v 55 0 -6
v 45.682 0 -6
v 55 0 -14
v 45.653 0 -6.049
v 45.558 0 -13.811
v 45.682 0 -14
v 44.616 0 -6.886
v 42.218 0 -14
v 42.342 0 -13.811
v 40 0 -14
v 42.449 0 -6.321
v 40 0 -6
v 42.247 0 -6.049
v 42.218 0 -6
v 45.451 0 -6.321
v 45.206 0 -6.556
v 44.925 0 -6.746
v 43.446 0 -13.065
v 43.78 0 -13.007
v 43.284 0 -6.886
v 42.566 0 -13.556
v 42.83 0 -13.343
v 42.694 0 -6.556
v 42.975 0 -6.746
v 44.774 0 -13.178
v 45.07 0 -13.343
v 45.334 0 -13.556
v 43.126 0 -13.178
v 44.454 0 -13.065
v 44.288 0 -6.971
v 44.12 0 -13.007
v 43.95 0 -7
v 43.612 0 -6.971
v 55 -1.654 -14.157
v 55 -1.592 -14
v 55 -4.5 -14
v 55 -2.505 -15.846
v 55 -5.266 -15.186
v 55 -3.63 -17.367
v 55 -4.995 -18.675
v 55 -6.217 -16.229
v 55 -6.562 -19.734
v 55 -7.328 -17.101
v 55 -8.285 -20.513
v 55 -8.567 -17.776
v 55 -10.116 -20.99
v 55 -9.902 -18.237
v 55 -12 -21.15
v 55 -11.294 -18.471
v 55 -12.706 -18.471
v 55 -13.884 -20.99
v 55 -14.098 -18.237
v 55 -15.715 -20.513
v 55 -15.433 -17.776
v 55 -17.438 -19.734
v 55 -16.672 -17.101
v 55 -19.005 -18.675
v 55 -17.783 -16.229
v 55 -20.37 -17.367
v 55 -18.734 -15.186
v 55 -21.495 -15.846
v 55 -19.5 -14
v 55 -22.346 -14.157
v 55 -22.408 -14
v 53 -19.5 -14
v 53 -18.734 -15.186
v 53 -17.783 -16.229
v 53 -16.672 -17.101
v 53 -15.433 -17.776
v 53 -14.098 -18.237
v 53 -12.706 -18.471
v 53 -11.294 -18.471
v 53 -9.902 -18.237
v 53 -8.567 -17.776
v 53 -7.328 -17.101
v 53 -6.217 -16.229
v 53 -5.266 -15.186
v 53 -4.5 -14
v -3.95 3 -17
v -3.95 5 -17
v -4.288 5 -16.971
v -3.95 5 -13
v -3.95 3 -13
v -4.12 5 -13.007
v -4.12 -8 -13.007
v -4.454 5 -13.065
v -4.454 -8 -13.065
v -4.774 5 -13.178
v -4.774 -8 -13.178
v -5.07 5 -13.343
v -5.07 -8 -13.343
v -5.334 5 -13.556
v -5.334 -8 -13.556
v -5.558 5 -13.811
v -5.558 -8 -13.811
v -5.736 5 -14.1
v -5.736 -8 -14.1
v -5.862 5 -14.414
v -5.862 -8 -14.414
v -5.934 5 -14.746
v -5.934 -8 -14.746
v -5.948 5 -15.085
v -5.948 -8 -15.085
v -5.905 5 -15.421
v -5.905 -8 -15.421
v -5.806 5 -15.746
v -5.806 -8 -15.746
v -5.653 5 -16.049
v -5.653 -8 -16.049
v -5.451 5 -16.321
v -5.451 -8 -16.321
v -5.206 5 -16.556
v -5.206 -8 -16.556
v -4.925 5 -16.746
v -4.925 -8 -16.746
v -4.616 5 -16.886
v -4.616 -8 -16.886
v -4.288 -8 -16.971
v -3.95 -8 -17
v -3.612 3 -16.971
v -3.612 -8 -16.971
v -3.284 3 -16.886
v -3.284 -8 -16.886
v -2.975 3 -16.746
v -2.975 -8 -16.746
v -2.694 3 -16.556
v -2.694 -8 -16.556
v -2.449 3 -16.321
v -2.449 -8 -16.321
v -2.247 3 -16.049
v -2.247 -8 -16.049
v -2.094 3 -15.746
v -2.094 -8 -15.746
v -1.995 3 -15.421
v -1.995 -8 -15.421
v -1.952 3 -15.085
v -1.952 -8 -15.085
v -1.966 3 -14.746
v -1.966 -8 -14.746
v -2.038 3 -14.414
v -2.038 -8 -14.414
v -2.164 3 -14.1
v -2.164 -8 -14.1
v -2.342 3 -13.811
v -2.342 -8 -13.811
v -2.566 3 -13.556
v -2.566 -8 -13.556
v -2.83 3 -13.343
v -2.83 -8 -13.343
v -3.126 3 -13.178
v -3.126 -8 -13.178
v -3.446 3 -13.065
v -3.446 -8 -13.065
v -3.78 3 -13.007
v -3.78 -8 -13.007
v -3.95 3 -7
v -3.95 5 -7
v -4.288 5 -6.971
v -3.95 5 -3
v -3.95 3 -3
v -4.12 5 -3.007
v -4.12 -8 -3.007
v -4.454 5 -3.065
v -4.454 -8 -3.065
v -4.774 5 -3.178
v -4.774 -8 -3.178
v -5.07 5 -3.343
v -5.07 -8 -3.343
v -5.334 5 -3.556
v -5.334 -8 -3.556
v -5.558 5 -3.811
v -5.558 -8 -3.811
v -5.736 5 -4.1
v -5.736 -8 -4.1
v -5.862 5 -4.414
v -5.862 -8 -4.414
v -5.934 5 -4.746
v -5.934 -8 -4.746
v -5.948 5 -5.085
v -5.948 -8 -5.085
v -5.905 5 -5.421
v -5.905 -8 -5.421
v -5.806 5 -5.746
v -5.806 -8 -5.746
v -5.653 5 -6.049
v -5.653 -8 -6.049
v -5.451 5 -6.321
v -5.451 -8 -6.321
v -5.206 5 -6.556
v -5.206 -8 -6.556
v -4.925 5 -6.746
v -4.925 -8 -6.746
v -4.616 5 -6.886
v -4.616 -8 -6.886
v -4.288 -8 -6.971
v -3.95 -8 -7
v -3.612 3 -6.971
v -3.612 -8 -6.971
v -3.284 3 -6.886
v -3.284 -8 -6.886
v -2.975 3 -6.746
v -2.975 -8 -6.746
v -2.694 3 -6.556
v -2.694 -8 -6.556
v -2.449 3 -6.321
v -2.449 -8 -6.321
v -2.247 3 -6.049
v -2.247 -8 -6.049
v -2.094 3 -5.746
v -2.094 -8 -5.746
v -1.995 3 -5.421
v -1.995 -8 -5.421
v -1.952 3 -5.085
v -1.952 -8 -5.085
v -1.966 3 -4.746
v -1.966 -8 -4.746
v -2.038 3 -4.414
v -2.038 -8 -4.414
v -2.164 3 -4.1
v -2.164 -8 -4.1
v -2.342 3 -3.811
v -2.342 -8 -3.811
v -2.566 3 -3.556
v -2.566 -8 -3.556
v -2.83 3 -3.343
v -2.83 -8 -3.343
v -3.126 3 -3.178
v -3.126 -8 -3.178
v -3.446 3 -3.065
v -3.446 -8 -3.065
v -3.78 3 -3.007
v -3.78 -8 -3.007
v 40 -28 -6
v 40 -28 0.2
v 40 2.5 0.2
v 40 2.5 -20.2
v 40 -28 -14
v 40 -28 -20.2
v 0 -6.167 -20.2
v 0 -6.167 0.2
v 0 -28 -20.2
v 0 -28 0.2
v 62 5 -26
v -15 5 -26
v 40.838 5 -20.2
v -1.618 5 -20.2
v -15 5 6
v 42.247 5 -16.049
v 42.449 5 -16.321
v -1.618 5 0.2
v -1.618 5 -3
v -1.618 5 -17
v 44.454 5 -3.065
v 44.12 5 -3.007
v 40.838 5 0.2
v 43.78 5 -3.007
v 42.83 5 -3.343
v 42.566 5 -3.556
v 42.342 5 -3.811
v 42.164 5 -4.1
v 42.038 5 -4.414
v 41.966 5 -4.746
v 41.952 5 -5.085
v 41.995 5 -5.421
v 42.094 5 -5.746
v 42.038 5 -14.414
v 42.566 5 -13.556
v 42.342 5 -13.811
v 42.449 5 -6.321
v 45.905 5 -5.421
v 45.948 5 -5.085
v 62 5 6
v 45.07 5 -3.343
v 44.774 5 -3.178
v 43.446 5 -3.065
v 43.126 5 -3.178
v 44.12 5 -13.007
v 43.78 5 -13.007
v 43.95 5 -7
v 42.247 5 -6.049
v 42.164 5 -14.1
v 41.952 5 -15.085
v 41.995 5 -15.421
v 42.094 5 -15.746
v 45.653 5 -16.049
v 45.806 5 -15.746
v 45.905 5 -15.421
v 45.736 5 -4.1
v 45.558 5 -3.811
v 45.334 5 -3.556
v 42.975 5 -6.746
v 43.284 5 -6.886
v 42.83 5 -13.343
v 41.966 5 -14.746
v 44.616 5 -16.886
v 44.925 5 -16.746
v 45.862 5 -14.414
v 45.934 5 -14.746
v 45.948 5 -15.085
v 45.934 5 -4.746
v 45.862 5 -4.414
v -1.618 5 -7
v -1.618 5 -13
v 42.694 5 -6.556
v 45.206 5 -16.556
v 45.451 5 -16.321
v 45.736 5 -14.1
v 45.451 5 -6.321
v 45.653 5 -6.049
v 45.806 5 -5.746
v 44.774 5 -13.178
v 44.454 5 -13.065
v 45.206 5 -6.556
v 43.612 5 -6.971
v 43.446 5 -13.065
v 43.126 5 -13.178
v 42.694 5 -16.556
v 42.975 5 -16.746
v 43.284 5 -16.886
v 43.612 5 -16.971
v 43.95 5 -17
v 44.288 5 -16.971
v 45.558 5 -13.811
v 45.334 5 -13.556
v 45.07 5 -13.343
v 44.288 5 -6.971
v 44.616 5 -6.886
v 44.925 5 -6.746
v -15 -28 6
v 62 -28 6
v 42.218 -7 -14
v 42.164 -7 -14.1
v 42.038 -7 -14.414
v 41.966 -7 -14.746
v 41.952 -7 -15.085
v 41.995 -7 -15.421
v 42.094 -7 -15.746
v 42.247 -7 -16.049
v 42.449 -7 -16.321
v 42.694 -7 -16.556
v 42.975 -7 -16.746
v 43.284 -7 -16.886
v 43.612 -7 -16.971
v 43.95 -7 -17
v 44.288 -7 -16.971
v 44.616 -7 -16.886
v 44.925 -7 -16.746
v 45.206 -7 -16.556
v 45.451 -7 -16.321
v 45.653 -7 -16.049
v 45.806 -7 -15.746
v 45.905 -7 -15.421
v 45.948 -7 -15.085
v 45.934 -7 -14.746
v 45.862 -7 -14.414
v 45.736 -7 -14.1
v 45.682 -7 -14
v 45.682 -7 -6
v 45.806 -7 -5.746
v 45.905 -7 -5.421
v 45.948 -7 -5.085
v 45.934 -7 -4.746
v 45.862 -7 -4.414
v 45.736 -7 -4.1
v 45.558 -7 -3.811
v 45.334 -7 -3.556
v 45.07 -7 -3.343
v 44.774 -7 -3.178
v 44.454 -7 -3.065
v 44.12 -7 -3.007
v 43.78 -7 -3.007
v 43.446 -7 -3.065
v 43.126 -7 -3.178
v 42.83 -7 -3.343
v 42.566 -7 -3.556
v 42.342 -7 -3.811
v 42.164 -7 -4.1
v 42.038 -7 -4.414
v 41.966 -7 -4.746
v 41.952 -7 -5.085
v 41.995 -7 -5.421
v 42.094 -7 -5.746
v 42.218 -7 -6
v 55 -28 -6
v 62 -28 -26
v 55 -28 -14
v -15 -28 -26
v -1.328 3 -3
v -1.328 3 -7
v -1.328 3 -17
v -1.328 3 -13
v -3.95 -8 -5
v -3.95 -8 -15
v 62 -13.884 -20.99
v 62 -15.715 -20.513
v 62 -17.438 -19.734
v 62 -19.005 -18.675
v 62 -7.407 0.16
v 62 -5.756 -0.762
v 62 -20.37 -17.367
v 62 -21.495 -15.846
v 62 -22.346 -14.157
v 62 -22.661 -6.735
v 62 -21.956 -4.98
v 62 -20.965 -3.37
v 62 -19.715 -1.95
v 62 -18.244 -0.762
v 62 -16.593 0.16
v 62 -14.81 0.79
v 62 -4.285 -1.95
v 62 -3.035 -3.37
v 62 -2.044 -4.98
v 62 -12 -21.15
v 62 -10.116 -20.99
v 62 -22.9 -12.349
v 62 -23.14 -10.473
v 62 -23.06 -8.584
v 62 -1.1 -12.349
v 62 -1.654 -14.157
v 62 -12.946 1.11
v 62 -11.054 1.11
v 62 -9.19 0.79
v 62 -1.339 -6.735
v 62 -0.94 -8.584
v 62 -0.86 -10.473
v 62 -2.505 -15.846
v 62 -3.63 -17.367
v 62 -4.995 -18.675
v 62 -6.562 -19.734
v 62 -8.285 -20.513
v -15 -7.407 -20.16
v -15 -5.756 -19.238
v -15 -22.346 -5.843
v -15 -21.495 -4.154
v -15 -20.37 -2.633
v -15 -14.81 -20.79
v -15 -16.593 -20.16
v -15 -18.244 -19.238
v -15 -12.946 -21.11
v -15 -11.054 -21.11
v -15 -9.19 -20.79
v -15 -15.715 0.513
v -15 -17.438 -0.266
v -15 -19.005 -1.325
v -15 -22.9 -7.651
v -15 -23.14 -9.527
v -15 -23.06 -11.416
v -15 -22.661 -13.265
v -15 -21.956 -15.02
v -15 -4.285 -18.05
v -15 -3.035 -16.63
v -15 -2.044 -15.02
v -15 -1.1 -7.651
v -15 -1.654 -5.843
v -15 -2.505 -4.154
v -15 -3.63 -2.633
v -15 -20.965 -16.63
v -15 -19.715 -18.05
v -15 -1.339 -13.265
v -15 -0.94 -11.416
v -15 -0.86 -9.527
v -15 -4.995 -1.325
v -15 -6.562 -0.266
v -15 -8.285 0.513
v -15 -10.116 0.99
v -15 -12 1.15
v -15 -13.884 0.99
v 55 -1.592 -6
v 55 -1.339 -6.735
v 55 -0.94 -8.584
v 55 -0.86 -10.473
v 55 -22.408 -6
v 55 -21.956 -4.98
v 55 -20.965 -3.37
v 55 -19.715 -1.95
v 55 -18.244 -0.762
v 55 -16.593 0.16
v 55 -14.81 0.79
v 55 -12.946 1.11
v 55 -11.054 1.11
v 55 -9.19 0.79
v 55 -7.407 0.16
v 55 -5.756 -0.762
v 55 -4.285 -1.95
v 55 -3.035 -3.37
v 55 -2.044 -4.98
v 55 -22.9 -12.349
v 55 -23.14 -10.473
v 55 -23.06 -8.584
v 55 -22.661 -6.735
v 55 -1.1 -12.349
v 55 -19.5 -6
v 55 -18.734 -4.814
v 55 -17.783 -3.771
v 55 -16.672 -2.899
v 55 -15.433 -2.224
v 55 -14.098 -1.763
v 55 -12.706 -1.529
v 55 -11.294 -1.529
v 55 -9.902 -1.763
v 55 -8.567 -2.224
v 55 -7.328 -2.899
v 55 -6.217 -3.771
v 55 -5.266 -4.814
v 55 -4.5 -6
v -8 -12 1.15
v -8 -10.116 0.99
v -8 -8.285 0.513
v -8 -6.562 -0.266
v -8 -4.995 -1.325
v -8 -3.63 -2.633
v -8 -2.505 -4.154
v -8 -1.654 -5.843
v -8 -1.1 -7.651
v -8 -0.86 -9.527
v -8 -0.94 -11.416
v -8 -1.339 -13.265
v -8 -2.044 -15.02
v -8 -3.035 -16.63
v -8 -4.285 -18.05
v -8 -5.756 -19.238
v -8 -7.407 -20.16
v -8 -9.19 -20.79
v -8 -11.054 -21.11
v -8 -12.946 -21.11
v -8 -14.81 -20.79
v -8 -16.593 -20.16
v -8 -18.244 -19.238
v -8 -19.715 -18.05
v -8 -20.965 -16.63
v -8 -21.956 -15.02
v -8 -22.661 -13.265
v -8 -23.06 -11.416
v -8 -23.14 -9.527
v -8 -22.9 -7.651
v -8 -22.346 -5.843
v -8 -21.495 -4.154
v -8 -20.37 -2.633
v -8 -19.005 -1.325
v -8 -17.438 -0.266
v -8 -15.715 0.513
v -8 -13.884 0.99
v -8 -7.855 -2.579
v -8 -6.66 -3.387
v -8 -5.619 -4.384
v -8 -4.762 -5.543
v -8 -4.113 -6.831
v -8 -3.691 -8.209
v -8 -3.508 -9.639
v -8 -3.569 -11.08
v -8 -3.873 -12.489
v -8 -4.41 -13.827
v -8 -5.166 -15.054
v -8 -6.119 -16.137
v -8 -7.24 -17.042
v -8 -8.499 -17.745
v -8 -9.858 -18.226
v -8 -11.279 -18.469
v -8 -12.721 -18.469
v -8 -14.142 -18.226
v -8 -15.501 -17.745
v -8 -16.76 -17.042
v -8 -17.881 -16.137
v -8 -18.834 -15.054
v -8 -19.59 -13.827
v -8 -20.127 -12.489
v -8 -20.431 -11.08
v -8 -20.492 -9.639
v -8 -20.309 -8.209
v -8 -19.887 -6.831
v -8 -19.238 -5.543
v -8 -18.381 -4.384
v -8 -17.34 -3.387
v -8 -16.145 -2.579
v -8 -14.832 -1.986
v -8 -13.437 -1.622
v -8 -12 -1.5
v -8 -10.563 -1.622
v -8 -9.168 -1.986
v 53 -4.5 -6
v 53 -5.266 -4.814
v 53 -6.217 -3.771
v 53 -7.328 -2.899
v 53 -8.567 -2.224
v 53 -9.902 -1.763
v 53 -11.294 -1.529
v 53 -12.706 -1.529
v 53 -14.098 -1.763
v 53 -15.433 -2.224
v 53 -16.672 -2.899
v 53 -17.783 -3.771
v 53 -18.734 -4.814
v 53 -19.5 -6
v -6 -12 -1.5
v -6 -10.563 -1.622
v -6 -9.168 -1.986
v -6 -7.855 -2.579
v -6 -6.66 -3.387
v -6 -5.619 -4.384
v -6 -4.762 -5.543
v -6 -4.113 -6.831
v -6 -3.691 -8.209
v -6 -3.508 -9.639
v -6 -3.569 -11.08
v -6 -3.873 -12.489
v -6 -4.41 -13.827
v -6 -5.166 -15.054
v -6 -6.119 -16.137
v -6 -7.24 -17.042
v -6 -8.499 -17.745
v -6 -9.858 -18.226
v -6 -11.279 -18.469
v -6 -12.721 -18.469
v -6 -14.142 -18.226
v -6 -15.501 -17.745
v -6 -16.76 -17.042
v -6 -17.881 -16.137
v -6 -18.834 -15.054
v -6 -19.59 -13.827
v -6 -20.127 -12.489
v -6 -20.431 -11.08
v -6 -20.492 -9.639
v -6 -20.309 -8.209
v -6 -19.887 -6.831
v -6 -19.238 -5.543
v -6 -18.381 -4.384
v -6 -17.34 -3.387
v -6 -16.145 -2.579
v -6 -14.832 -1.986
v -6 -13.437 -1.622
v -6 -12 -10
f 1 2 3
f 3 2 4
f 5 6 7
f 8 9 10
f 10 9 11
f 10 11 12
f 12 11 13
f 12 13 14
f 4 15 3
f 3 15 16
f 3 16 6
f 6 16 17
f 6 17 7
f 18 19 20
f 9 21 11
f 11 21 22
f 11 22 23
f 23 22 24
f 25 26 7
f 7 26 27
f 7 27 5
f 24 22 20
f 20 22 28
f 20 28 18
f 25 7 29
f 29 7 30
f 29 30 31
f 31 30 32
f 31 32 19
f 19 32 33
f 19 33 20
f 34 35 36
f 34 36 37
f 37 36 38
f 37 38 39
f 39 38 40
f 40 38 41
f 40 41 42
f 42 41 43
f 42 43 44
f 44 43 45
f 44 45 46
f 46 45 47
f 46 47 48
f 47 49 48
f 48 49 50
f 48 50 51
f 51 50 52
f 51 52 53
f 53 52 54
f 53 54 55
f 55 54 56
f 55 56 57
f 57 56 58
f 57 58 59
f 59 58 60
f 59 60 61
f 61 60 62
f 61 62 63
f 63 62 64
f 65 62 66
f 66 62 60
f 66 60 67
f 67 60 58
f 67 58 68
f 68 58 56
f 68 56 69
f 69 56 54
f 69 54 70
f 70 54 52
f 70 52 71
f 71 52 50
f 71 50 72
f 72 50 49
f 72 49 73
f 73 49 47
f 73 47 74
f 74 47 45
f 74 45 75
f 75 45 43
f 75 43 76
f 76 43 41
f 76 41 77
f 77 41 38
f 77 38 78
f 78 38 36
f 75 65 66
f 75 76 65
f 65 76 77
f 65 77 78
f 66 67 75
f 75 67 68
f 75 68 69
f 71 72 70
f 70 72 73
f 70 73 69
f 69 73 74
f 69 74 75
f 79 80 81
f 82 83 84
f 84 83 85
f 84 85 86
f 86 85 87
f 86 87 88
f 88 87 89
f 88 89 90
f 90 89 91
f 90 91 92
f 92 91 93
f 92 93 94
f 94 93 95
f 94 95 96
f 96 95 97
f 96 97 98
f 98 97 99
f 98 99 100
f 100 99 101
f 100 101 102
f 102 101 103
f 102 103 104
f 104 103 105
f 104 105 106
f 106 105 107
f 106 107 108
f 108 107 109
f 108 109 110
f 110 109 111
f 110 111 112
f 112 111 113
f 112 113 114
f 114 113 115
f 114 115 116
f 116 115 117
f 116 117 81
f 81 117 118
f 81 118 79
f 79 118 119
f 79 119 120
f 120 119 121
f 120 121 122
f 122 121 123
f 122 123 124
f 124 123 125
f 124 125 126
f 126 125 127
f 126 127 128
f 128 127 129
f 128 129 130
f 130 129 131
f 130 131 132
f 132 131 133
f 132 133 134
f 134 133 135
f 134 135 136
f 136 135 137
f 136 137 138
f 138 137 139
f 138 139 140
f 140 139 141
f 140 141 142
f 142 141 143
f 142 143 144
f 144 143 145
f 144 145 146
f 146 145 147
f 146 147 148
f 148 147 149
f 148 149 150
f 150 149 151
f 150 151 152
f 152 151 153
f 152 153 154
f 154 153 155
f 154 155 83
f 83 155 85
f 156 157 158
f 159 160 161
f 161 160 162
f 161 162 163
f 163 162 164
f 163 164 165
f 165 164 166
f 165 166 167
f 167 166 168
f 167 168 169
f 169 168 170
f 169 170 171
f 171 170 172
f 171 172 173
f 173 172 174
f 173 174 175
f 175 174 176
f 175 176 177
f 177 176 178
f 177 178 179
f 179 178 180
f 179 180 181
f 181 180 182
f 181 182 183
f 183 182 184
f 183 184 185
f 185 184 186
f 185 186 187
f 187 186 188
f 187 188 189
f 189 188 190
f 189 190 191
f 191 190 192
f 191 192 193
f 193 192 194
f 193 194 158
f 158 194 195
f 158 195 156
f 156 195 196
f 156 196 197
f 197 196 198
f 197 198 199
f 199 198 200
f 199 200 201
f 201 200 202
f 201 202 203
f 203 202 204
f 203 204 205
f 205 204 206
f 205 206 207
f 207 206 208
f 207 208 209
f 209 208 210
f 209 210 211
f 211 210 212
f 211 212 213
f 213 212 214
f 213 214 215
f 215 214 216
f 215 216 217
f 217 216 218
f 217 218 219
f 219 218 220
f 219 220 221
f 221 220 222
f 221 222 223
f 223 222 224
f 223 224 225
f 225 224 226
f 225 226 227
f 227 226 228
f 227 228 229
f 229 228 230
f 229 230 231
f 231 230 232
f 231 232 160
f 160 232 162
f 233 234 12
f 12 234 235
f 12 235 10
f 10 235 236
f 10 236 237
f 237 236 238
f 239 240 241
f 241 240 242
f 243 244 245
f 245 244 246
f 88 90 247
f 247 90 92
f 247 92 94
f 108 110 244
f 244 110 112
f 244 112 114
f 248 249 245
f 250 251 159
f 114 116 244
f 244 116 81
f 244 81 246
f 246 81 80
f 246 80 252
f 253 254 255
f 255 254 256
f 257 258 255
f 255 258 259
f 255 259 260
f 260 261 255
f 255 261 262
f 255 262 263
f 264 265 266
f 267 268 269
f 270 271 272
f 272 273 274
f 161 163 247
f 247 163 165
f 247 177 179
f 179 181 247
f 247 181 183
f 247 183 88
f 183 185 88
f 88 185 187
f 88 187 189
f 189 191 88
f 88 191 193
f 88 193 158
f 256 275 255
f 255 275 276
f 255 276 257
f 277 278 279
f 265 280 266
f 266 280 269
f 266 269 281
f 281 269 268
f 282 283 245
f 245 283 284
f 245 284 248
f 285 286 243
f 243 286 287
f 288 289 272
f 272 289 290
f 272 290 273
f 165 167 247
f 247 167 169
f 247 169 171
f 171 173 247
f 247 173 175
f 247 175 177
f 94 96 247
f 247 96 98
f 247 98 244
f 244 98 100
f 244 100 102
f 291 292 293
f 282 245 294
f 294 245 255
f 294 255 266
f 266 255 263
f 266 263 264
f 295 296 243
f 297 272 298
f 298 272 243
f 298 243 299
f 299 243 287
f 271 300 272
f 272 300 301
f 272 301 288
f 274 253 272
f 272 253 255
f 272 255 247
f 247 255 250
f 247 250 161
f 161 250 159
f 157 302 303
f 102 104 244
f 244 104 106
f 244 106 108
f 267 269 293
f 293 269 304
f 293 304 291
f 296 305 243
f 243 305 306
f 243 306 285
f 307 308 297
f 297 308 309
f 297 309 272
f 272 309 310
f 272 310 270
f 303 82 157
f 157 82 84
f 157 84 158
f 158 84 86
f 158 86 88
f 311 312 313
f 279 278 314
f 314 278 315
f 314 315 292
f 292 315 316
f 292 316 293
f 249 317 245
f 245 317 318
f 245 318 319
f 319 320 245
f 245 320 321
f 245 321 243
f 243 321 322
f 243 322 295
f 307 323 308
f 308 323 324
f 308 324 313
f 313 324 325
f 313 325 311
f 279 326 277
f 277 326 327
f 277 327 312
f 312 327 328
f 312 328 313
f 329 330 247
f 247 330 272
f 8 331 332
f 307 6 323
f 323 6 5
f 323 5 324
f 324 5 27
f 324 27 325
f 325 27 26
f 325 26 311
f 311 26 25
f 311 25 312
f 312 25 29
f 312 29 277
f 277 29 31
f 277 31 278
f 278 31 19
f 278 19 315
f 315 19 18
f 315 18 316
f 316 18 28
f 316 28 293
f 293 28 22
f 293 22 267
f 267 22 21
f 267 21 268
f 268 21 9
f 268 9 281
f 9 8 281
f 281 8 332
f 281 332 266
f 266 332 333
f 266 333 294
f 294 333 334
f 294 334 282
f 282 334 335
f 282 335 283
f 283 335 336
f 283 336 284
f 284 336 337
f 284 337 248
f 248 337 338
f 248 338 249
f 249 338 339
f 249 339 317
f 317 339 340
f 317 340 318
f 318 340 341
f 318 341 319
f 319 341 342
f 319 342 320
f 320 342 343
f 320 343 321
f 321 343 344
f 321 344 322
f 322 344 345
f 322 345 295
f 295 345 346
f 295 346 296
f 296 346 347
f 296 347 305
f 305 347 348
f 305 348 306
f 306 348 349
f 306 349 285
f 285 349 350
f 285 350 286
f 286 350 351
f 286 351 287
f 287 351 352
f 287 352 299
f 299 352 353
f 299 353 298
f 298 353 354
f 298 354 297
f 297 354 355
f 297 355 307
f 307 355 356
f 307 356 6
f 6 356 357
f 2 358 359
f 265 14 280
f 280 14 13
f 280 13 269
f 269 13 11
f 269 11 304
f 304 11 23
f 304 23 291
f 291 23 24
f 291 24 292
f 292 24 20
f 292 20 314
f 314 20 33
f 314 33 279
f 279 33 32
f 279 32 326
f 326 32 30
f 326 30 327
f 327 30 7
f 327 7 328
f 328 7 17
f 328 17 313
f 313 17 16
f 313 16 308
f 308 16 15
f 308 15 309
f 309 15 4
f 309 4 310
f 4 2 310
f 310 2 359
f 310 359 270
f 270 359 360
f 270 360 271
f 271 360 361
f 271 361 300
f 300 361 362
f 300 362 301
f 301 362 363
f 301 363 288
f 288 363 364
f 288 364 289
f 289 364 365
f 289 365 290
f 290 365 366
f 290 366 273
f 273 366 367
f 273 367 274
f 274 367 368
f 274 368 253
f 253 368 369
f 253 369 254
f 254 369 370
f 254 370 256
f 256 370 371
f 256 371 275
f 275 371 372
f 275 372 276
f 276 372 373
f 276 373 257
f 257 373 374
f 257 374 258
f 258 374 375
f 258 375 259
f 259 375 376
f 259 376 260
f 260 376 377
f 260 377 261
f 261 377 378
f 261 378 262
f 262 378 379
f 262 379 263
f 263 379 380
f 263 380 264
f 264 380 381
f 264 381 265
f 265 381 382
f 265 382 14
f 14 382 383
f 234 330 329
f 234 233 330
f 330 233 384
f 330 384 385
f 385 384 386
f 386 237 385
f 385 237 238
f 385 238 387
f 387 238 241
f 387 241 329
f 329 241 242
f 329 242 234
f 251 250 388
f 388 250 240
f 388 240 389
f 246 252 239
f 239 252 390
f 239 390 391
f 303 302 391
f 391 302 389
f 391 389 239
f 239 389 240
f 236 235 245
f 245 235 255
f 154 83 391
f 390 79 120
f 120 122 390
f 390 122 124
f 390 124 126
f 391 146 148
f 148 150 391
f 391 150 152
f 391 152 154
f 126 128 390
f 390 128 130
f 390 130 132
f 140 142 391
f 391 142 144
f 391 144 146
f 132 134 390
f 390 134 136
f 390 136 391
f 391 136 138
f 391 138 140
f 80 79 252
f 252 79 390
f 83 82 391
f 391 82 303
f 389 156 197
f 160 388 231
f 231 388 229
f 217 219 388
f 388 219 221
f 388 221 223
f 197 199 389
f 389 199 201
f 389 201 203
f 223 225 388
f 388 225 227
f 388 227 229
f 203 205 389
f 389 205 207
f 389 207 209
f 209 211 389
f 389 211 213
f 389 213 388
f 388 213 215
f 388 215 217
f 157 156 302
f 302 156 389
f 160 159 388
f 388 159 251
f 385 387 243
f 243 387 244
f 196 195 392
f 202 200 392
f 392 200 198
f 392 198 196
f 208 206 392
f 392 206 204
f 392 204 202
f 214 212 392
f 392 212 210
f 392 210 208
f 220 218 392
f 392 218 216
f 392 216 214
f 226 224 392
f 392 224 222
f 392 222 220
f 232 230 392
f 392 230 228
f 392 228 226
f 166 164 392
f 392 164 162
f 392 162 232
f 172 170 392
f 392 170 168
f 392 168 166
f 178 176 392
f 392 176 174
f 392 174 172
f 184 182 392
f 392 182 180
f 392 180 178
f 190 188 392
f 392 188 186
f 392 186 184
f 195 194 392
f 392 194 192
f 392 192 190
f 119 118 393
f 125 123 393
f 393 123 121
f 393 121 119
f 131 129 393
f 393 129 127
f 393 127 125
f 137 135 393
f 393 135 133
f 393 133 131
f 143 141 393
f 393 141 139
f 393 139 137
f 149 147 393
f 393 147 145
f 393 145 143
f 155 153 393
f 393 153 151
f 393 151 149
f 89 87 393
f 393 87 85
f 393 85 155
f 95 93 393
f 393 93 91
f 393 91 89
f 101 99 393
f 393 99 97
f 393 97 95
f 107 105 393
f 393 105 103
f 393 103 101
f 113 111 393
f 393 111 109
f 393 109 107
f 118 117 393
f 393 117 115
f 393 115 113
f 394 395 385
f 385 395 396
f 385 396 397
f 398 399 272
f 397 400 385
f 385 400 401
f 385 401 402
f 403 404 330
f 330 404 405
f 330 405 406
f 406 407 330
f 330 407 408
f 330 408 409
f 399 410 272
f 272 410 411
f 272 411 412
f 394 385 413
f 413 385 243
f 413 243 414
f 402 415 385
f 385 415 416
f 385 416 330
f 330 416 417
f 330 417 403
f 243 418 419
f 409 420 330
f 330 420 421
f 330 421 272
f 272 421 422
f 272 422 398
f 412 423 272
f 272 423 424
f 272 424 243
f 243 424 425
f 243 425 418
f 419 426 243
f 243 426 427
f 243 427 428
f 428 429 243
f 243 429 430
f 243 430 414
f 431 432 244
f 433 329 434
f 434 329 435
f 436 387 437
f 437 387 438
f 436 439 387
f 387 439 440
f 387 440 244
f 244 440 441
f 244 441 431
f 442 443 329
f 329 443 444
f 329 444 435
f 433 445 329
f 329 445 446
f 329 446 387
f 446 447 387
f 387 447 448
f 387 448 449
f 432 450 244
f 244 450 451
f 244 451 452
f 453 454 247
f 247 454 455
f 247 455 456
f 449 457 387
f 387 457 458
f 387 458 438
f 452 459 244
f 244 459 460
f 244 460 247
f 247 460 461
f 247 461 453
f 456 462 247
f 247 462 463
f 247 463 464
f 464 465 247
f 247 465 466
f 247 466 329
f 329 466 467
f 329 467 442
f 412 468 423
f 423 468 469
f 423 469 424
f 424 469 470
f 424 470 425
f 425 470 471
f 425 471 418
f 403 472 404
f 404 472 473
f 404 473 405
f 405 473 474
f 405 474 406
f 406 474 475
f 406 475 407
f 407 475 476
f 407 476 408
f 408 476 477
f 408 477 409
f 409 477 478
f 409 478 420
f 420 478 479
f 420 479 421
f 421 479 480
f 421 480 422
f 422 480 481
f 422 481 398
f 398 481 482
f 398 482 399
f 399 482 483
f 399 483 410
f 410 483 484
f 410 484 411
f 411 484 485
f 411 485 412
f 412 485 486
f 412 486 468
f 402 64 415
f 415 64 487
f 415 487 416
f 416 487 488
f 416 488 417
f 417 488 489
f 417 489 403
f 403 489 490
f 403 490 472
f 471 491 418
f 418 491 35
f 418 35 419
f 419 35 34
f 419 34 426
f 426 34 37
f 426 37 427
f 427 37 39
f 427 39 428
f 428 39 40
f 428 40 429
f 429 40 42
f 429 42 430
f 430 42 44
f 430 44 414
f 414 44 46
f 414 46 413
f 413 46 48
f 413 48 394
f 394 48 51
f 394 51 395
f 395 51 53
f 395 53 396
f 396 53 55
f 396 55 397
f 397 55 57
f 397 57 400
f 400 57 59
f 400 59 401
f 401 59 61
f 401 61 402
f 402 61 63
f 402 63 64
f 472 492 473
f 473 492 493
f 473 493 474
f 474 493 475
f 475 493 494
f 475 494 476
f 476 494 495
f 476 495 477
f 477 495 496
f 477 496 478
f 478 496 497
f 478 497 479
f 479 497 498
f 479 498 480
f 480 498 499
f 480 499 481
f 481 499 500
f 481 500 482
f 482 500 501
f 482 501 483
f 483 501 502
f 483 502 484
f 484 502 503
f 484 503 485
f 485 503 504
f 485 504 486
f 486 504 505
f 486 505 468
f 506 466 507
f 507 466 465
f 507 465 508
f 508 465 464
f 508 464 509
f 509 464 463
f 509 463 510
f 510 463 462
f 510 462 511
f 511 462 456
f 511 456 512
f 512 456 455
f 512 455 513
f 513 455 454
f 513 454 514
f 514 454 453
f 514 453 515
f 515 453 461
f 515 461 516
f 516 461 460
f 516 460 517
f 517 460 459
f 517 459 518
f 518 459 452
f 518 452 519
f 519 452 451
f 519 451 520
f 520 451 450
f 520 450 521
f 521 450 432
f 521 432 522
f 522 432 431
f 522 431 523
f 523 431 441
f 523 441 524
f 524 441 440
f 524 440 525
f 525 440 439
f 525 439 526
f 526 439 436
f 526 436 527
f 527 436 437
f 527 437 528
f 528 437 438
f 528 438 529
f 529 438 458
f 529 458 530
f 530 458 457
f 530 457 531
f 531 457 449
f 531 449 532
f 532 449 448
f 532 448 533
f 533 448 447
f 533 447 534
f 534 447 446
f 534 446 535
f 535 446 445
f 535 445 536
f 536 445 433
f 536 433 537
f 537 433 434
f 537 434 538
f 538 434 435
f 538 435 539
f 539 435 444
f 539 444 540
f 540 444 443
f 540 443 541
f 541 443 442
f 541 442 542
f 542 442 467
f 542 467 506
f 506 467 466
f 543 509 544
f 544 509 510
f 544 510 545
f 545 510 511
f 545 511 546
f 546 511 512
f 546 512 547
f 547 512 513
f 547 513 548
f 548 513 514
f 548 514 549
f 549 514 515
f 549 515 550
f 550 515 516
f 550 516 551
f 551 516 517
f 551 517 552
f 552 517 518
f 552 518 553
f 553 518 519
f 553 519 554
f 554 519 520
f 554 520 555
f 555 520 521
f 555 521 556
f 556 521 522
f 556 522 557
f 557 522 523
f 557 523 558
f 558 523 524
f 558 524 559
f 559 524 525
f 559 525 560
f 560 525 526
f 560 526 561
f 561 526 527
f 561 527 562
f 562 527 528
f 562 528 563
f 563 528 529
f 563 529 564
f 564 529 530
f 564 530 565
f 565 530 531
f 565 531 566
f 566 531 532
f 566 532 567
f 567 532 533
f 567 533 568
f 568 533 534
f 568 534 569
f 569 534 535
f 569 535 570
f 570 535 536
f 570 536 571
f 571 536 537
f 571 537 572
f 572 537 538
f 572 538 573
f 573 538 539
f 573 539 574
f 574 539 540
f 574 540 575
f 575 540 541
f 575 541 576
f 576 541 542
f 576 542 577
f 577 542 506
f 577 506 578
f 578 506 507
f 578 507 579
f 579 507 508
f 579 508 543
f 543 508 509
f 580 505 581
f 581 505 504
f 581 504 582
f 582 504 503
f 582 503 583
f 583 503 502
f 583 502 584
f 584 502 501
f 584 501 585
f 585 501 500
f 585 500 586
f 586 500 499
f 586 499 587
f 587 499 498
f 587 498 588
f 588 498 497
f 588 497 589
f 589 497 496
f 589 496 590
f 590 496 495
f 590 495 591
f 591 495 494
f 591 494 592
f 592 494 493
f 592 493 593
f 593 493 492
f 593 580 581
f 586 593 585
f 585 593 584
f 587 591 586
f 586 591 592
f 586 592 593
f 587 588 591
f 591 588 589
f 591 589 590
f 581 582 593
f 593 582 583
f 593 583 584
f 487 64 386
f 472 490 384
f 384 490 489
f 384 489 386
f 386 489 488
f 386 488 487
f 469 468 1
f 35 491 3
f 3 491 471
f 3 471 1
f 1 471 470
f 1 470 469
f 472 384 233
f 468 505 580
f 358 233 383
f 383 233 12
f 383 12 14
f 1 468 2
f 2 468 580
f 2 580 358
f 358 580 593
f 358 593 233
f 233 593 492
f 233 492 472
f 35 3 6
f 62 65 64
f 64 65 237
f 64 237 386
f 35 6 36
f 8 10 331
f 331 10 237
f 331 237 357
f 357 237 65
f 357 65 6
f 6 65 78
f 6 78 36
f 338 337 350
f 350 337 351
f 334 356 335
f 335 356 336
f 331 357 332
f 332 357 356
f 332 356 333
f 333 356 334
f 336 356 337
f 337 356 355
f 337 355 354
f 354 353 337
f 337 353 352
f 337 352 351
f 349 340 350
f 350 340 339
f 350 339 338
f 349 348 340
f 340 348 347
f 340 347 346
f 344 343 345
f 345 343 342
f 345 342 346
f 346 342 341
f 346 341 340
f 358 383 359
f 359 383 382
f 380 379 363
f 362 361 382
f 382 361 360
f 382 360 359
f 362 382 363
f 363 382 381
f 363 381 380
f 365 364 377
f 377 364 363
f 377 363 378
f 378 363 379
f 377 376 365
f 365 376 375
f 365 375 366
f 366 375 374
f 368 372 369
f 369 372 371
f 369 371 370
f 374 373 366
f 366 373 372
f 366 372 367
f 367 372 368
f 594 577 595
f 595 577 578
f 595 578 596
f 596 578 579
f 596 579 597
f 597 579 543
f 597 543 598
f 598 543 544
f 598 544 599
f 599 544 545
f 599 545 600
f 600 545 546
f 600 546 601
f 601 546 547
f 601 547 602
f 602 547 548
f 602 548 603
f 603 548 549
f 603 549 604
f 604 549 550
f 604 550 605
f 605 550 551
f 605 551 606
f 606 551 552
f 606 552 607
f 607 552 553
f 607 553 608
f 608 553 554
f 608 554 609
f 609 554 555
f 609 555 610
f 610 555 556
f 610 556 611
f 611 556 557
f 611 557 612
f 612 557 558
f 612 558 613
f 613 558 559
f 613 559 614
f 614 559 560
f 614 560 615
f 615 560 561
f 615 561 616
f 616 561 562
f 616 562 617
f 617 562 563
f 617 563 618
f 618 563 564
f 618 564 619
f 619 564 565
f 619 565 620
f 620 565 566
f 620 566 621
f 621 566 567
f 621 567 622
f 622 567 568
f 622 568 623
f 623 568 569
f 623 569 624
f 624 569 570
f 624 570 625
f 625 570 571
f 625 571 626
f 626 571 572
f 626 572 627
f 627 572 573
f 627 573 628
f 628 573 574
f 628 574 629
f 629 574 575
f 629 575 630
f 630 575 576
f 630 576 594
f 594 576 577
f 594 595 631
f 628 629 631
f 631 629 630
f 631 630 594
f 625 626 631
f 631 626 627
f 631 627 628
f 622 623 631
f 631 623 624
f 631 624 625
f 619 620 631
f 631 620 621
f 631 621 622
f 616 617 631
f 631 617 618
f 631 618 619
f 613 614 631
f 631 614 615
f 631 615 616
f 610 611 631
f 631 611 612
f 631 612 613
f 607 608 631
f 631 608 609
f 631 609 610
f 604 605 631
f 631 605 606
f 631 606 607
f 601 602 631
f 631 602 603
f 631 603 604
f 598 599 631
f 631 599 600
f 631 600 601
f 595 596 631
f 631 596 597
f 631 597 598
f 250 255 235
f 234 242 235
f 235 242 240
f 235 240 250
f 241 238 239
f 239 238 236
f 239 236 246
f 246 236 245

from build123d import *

# Parameters (mm, degrees)
BOSS_EXTRUDE1_DEPTH  = 5
SKETCH6_R            = 2
CUT_EXTRUDE3_DEPTH   = 53.239831546
SKETCH7_W            = 56
SKETCH7_H            = 6
BOSS_EXTRUDE2_DEPTH  = 28
SKETCH9_W            = 20
SKETCH9_H            = 28
BOSS_EXTRUDE3_DEPTH  = 2
SKETCH8_W            = 26
SKETCH8_H            = 33
BOSS_EXTRUDE4_DEPTH  = 2
BOSS_EXTRUDE5_START  = 28
SKETCH10_W           = 8
SKETCH10_H           = 20
SKETCH10_R           = 2
BOSS_EXTRUDE5_DEPTH  = 28
CUT_EXTRUDE4_DEPTH   = 20
SKETCH13_W           = 3.95
SKETCH13_H           = 4
CUT_EXTRUDE5_DEPTH   = 2
SKETCH14_W           = 60
SKETCH14_H           = 33
BOSS_EXTRUDE6_DEPTH  = 6
SKETCH15_R           = 2
BOSS_EXTRUDE7_DEPTH  = 20
SKETCH16_W           = 32
SKETCH16_H           = 33
BOSS_EXTRUDE8_DEPTH  = 12
SKETCH20_W           = 32
SKETCH20_H           = 33
BOSS_EXTRUDE9_DEPTH  = 5
SKETCH17_R           = 11.15
CUT_EXTRUDE6_DEPTH   = 7
CUT_EXTRUDE7_START   = -7
SKETCH19_R           = 11.15
CUT_EXTRUDE7_DEPTH   = 7
SKETCH21_R           = 8.5
CUT_EXTRUDE8_DEPTH   = 2
CUT_EXTRUDE10_START  = -28
SKETCH22_W           = 7
SKETCH22_H           = 8
CUT_EXTRUDE10_DEPTH  = 28
SKETCH25_W           = 8
SKETCH25_H           = 6
BOSS_EXTRUDE10_DEPTH = 28
CUT_EXTRUDE11_START  = -12
SKETCH26_R           = 2
CUT_EXTRUDE11_DEPTH  = 12
CUT_EXTRUDE12_START  = -2
SKETCH27_R           = 8.5
CUT_EXTRUDE12_DEPTH  = 2
CUT_EXTRUDE13_DEPTH  = 0.2
CUT_EXTRUDE14_DEPTH  = 0.2


with BuildPart() as part:
    # Sketch2 → Boss-Extrude1 (new body)
    with BuildSketch(Plane(origin=(0, 0, 0), x_dir=(1, 0, 0), z_dir=(0, 1, 0))):
        Polygon((0, 0), (0, 20), (-8, 20), (-8, -6), (48, -6), (48, 20), (40, 20), (40, 0), align=None)
    extrude(amount=BOSS_EXTRUDE1_DEPTH)

    # Sketch6 → Cut-Extrude3 (cut, through all)
    with BuildSketch(Plane.XZ):
        with Locations(Location((43.95, -5, 0), (0, 0, 270))):
            Circle(SKETCH6_R)
        with Locations(Location((43.95, -15, 0), (0, 0, 270))):
            Circle(SKETCH6_R)
        with Locations(Location((-3.95, -5, 0), (0, 0, 270))):
            Circle(SKETCH6_R)
        with Locations(Location((-3.95, -15, 0), (0, 0, 270))):
            Circle(SKETCH6_R)
    extrude(amount=-CUT_EXTRUDE3_DEPTH, mode=Mode.SUBTRACT)

    # Sketch7 → Boss-Extrude2 (add)
    with BuildSketch(Plane.XZ):
        with Locations((20, 3)):
            Rectangle(SKETCH7_W, SKETCH7_H)
    extrude(amount=BOSS_EXTRUDE2_DEPTH)

    # Sketch9 → Boss-Extrude3 (add)
    with BuildSketch(Plane.ZY.offset(8)):
        Polygon((-20, 5), (-20, 0), (0, 0), (0, -28), (6, -28), (6, 5), align=None)
        with Locations((-10, -14)):
            Rectangle(SKETCH9_W, SKETCH9_H)
    extrude(amount=BOSS_EXTRUDE3_DEPTH)

    # Sketch8 → Boss-Extrude4 (add)
    with BuildSketch(Plane(origin=(48, 0, 0), x_dir=(0, 0, -1), z_dir=(1, 0, 0))):
        with Locations((7, -11.5)):
            Rectangle(SKETCH8_W, SKETCH8_H)
    extrude(amount=BOSS_EXTRUDE4_DEPTH)

    # Sketch10 → Boss-Extrude5 (add)
    with BuildSketch(Plane.XZ.offset(BOSS_EXTRUDE5_START)):
        with Locations((-4, -10)):
            Rectangle(SKETCH10_W, SKETCH10_H)
        with Locations(Location((-3.95, -5, 0), (0, 0, 270))):
            Circle(SKETCH10_R, mode=Mode.SUBTRACT)
        with Locations(Location((-3.95, -15, 0), (0, 0, 270))):
            Circle(SKETCH10_R, mode=Mode.SUBTRACT)
    extrude(amount=-BOSS_EXTRUDE5_DEPTH)

    # Sketch12 → Cut-Extrude4 (cut)
    with BuildSketch(Plane(origin=(0, 0, -20), x_dir=(-1, 0, 0), z_dir=(0, 0, -1))):
        Polygon((-40, 5), (-40, 2.5), (-40.83785019, 5), align=None)
        Polygon((0, -6.167201623), (1.617522403, 5), (0, 5), align=None)
    extrude(amount=-CUT_EXTRUDE4_DEPTH, mode=Mode.SUBTRACT)

    # Sketch13 → Cut-Extrude5 (cut)
    with BuildSketch(Plane(origin=(0, 5, 0), x_dir=(1, 0, 0), z_dir=(0, 1, 0))):
        with Locations((-1.975, 5)):
            Rectangle(SKETCH13_W, SKETCH13_H)
        with Locations((-1.975, 15)):
            Rectangle(SKETCH13_W, SKETCH13_H)
    extrude(amount=-CUT_EXTRUDE5_DEPTH, mode=Mode.SUBTRACT)

    # Sketch14 → Boss-Extrude6 (add)
    with BuildSketch(Plane(origin=(0, 0, -20), x_dir=(-1, 0, 0), z_dir=(0, 0, -1))):
        with Locations((-20, -11.5)):
            Rectangle(SKETCH14_W, SKETCH14_H)
    extrude(amount=BOSS_EXTRUDE6_DEPTH)

    # Sketch15 → Boss-Extrude7 (add)
    with BuildSketch(Plane.XZ.offset(28)):
        with Locations(Location((-3.95, -5, 0), (0, 0, 270))):
            Circle(SKETCH15_R)
        with Locations(Location((-3.95, -15, 0), (0, 0, 270))):
            Circle(SKETCH15_R)
    extrude(amount=-BOSS_EXTRUDE7_DEPTH)

    # Sketch16 → Boss-Extrude8 (add)
    with BuildSketch(Plane(origin=(50, 0, 0), x_dir=(0, 0, -1), z_dir=(1, 0, 0))):
        with Locations((10, -11.5)):
            Rectangle(SKETCH16_W, SKETCH16_H)
    extrude(amount=BOSS_EXTRUDE8_DEPTH)

    # Sketch20 → Boss-Extrude9 (add)
    with BuildSketch(Plane.ZY.offset(10)):
        with Locations((-10, -11.5)):
            Rectangle(SKETCH20_W, SKETCH20_H)
    extrude(amount=BOSS_EXTRUDE9_DEPTH)

    # Sketch17 → Cut-Extrude6 (cut)
    with BuildSketch(Plane(origin=(62, 0, 0), x_dir=(0, 0, -1), z_dir=(1, 0, 0))):
        with Locations((10, -12)):
            Circle(SKETCH17_R)
    extrude(amount=-CUT_EXTRUDE6_DEPTH, mode=Mode.SUBTRACT)

    # Sketch19 → Cut-Extrude7 (cut)
    with BuildSketch(Plane.ZY.offset(15).offset(CUT_EXTRUDE7_START)):
        with Locations(Location((-10, -12, 0), (0, 0, 180))):
            Circle(SKETCH19_R)
    extrude(amount=CUT_EXTRUDE7_DEPTH, mode=Mode.SUBTRACT)

    # Sketch21 → Cut-Extrude8 (cut)
    with BuildSketch(Plane(origin=(55, 0, 0), x_dir=(0, 0, -1), z_dir=(1, 0, 0))):
        with Locations((10, -12)):
            Circle(SKETCH21_R)
    extrude(amount=-CUT_EXTRUDE8_DEPTH, mode=Mode.SUBTRACT)

    # Sketch22 → Cut-Extrude10 (cut)
    with BuildSketch(Plane.XZ.offset(28).offset(CUT_EXTRUDE10_START)):
        with Locations((51.5, -10)):
            Rectangle(SKETCH22_W, SKETCH22_H)
    extrude(amount=CUT_EXTRUDE10_DEPTH, mode=Mode.SUBTRACT)

    # Sketch25 → Boss-Extrude10 (add)
    with BuildSketch(Plane.XZ):
        with Locations((44, -3)):
            Rectangle(SKETCH25_W, SKETCH25_H)
        with Locations((44, -17)):
            Rectangle(SKETCH25_W, SKETCH25_H)
    extrude(amount=BOSS_EXTRUDE10_DEPTH)

    # Sketch26 → Cut-Extrude11 (cut)
    with BuildSketch(Plane(origin=(0, 5, 0), x_dir=(1, 0, 0), z_dir=(0, 1, 0)).offset(CUT_EXTRUDE11_START)):
        with Locations(Location((43.95, 5, 0), (0, 0, 90))):
            Circle(SKETCH26_R)
        with Locations(Location((43.95, 15, 0), (0, 0, 90))):
            Circle(SKETCH26_R)
    extrude(amount=CUT_EXTRUDE11_DEPTH, mode=Mode.SUBTRACT)

    # Sketch27 → Cut-Extrude12 (cut)
    with BuildSketch(Plane.ZY.offset(8).offset(CUT_EXTRUDE12_START)):
        with Locations((-10, -12)):
            Circle(SKETCH27_R)
    extrude(amount=CUT_EXTRUDE12_DEPTH, mode=Mode.SUBTRACT)

    # Sketch28 → Cut-Extrude13 (cut)
    with BuildSketch(Plane(origin=(0, 0, 0), x_dir=(-1, 0, 0), z_dir=(0, 0, -1))):
        Polygon((-40, 2.5), (-40, -28), (0, -28), (0, -6.167201623), (1.617522403, 5), (-40.83785019, 5), align=None)
    extrude(amount=-CUT_EXTRUDE13_DEPTH, mode=Mode.SUBTRACT)

    # Sketch29 → Cut-Extrude14 (cut)
    with BuildSketch(Plane.XY.offset(-20)):
        Polygon((0, -28), (40, -28), (40, 2.5), (40.83785019, 5), (-1.617522403, 5), (0, -6.167201623), align=None)
    extrude(amount=-CUT_EXTRUDE14_DEPTH, mode=Mode.SUBTRACT)


solid = part.part
